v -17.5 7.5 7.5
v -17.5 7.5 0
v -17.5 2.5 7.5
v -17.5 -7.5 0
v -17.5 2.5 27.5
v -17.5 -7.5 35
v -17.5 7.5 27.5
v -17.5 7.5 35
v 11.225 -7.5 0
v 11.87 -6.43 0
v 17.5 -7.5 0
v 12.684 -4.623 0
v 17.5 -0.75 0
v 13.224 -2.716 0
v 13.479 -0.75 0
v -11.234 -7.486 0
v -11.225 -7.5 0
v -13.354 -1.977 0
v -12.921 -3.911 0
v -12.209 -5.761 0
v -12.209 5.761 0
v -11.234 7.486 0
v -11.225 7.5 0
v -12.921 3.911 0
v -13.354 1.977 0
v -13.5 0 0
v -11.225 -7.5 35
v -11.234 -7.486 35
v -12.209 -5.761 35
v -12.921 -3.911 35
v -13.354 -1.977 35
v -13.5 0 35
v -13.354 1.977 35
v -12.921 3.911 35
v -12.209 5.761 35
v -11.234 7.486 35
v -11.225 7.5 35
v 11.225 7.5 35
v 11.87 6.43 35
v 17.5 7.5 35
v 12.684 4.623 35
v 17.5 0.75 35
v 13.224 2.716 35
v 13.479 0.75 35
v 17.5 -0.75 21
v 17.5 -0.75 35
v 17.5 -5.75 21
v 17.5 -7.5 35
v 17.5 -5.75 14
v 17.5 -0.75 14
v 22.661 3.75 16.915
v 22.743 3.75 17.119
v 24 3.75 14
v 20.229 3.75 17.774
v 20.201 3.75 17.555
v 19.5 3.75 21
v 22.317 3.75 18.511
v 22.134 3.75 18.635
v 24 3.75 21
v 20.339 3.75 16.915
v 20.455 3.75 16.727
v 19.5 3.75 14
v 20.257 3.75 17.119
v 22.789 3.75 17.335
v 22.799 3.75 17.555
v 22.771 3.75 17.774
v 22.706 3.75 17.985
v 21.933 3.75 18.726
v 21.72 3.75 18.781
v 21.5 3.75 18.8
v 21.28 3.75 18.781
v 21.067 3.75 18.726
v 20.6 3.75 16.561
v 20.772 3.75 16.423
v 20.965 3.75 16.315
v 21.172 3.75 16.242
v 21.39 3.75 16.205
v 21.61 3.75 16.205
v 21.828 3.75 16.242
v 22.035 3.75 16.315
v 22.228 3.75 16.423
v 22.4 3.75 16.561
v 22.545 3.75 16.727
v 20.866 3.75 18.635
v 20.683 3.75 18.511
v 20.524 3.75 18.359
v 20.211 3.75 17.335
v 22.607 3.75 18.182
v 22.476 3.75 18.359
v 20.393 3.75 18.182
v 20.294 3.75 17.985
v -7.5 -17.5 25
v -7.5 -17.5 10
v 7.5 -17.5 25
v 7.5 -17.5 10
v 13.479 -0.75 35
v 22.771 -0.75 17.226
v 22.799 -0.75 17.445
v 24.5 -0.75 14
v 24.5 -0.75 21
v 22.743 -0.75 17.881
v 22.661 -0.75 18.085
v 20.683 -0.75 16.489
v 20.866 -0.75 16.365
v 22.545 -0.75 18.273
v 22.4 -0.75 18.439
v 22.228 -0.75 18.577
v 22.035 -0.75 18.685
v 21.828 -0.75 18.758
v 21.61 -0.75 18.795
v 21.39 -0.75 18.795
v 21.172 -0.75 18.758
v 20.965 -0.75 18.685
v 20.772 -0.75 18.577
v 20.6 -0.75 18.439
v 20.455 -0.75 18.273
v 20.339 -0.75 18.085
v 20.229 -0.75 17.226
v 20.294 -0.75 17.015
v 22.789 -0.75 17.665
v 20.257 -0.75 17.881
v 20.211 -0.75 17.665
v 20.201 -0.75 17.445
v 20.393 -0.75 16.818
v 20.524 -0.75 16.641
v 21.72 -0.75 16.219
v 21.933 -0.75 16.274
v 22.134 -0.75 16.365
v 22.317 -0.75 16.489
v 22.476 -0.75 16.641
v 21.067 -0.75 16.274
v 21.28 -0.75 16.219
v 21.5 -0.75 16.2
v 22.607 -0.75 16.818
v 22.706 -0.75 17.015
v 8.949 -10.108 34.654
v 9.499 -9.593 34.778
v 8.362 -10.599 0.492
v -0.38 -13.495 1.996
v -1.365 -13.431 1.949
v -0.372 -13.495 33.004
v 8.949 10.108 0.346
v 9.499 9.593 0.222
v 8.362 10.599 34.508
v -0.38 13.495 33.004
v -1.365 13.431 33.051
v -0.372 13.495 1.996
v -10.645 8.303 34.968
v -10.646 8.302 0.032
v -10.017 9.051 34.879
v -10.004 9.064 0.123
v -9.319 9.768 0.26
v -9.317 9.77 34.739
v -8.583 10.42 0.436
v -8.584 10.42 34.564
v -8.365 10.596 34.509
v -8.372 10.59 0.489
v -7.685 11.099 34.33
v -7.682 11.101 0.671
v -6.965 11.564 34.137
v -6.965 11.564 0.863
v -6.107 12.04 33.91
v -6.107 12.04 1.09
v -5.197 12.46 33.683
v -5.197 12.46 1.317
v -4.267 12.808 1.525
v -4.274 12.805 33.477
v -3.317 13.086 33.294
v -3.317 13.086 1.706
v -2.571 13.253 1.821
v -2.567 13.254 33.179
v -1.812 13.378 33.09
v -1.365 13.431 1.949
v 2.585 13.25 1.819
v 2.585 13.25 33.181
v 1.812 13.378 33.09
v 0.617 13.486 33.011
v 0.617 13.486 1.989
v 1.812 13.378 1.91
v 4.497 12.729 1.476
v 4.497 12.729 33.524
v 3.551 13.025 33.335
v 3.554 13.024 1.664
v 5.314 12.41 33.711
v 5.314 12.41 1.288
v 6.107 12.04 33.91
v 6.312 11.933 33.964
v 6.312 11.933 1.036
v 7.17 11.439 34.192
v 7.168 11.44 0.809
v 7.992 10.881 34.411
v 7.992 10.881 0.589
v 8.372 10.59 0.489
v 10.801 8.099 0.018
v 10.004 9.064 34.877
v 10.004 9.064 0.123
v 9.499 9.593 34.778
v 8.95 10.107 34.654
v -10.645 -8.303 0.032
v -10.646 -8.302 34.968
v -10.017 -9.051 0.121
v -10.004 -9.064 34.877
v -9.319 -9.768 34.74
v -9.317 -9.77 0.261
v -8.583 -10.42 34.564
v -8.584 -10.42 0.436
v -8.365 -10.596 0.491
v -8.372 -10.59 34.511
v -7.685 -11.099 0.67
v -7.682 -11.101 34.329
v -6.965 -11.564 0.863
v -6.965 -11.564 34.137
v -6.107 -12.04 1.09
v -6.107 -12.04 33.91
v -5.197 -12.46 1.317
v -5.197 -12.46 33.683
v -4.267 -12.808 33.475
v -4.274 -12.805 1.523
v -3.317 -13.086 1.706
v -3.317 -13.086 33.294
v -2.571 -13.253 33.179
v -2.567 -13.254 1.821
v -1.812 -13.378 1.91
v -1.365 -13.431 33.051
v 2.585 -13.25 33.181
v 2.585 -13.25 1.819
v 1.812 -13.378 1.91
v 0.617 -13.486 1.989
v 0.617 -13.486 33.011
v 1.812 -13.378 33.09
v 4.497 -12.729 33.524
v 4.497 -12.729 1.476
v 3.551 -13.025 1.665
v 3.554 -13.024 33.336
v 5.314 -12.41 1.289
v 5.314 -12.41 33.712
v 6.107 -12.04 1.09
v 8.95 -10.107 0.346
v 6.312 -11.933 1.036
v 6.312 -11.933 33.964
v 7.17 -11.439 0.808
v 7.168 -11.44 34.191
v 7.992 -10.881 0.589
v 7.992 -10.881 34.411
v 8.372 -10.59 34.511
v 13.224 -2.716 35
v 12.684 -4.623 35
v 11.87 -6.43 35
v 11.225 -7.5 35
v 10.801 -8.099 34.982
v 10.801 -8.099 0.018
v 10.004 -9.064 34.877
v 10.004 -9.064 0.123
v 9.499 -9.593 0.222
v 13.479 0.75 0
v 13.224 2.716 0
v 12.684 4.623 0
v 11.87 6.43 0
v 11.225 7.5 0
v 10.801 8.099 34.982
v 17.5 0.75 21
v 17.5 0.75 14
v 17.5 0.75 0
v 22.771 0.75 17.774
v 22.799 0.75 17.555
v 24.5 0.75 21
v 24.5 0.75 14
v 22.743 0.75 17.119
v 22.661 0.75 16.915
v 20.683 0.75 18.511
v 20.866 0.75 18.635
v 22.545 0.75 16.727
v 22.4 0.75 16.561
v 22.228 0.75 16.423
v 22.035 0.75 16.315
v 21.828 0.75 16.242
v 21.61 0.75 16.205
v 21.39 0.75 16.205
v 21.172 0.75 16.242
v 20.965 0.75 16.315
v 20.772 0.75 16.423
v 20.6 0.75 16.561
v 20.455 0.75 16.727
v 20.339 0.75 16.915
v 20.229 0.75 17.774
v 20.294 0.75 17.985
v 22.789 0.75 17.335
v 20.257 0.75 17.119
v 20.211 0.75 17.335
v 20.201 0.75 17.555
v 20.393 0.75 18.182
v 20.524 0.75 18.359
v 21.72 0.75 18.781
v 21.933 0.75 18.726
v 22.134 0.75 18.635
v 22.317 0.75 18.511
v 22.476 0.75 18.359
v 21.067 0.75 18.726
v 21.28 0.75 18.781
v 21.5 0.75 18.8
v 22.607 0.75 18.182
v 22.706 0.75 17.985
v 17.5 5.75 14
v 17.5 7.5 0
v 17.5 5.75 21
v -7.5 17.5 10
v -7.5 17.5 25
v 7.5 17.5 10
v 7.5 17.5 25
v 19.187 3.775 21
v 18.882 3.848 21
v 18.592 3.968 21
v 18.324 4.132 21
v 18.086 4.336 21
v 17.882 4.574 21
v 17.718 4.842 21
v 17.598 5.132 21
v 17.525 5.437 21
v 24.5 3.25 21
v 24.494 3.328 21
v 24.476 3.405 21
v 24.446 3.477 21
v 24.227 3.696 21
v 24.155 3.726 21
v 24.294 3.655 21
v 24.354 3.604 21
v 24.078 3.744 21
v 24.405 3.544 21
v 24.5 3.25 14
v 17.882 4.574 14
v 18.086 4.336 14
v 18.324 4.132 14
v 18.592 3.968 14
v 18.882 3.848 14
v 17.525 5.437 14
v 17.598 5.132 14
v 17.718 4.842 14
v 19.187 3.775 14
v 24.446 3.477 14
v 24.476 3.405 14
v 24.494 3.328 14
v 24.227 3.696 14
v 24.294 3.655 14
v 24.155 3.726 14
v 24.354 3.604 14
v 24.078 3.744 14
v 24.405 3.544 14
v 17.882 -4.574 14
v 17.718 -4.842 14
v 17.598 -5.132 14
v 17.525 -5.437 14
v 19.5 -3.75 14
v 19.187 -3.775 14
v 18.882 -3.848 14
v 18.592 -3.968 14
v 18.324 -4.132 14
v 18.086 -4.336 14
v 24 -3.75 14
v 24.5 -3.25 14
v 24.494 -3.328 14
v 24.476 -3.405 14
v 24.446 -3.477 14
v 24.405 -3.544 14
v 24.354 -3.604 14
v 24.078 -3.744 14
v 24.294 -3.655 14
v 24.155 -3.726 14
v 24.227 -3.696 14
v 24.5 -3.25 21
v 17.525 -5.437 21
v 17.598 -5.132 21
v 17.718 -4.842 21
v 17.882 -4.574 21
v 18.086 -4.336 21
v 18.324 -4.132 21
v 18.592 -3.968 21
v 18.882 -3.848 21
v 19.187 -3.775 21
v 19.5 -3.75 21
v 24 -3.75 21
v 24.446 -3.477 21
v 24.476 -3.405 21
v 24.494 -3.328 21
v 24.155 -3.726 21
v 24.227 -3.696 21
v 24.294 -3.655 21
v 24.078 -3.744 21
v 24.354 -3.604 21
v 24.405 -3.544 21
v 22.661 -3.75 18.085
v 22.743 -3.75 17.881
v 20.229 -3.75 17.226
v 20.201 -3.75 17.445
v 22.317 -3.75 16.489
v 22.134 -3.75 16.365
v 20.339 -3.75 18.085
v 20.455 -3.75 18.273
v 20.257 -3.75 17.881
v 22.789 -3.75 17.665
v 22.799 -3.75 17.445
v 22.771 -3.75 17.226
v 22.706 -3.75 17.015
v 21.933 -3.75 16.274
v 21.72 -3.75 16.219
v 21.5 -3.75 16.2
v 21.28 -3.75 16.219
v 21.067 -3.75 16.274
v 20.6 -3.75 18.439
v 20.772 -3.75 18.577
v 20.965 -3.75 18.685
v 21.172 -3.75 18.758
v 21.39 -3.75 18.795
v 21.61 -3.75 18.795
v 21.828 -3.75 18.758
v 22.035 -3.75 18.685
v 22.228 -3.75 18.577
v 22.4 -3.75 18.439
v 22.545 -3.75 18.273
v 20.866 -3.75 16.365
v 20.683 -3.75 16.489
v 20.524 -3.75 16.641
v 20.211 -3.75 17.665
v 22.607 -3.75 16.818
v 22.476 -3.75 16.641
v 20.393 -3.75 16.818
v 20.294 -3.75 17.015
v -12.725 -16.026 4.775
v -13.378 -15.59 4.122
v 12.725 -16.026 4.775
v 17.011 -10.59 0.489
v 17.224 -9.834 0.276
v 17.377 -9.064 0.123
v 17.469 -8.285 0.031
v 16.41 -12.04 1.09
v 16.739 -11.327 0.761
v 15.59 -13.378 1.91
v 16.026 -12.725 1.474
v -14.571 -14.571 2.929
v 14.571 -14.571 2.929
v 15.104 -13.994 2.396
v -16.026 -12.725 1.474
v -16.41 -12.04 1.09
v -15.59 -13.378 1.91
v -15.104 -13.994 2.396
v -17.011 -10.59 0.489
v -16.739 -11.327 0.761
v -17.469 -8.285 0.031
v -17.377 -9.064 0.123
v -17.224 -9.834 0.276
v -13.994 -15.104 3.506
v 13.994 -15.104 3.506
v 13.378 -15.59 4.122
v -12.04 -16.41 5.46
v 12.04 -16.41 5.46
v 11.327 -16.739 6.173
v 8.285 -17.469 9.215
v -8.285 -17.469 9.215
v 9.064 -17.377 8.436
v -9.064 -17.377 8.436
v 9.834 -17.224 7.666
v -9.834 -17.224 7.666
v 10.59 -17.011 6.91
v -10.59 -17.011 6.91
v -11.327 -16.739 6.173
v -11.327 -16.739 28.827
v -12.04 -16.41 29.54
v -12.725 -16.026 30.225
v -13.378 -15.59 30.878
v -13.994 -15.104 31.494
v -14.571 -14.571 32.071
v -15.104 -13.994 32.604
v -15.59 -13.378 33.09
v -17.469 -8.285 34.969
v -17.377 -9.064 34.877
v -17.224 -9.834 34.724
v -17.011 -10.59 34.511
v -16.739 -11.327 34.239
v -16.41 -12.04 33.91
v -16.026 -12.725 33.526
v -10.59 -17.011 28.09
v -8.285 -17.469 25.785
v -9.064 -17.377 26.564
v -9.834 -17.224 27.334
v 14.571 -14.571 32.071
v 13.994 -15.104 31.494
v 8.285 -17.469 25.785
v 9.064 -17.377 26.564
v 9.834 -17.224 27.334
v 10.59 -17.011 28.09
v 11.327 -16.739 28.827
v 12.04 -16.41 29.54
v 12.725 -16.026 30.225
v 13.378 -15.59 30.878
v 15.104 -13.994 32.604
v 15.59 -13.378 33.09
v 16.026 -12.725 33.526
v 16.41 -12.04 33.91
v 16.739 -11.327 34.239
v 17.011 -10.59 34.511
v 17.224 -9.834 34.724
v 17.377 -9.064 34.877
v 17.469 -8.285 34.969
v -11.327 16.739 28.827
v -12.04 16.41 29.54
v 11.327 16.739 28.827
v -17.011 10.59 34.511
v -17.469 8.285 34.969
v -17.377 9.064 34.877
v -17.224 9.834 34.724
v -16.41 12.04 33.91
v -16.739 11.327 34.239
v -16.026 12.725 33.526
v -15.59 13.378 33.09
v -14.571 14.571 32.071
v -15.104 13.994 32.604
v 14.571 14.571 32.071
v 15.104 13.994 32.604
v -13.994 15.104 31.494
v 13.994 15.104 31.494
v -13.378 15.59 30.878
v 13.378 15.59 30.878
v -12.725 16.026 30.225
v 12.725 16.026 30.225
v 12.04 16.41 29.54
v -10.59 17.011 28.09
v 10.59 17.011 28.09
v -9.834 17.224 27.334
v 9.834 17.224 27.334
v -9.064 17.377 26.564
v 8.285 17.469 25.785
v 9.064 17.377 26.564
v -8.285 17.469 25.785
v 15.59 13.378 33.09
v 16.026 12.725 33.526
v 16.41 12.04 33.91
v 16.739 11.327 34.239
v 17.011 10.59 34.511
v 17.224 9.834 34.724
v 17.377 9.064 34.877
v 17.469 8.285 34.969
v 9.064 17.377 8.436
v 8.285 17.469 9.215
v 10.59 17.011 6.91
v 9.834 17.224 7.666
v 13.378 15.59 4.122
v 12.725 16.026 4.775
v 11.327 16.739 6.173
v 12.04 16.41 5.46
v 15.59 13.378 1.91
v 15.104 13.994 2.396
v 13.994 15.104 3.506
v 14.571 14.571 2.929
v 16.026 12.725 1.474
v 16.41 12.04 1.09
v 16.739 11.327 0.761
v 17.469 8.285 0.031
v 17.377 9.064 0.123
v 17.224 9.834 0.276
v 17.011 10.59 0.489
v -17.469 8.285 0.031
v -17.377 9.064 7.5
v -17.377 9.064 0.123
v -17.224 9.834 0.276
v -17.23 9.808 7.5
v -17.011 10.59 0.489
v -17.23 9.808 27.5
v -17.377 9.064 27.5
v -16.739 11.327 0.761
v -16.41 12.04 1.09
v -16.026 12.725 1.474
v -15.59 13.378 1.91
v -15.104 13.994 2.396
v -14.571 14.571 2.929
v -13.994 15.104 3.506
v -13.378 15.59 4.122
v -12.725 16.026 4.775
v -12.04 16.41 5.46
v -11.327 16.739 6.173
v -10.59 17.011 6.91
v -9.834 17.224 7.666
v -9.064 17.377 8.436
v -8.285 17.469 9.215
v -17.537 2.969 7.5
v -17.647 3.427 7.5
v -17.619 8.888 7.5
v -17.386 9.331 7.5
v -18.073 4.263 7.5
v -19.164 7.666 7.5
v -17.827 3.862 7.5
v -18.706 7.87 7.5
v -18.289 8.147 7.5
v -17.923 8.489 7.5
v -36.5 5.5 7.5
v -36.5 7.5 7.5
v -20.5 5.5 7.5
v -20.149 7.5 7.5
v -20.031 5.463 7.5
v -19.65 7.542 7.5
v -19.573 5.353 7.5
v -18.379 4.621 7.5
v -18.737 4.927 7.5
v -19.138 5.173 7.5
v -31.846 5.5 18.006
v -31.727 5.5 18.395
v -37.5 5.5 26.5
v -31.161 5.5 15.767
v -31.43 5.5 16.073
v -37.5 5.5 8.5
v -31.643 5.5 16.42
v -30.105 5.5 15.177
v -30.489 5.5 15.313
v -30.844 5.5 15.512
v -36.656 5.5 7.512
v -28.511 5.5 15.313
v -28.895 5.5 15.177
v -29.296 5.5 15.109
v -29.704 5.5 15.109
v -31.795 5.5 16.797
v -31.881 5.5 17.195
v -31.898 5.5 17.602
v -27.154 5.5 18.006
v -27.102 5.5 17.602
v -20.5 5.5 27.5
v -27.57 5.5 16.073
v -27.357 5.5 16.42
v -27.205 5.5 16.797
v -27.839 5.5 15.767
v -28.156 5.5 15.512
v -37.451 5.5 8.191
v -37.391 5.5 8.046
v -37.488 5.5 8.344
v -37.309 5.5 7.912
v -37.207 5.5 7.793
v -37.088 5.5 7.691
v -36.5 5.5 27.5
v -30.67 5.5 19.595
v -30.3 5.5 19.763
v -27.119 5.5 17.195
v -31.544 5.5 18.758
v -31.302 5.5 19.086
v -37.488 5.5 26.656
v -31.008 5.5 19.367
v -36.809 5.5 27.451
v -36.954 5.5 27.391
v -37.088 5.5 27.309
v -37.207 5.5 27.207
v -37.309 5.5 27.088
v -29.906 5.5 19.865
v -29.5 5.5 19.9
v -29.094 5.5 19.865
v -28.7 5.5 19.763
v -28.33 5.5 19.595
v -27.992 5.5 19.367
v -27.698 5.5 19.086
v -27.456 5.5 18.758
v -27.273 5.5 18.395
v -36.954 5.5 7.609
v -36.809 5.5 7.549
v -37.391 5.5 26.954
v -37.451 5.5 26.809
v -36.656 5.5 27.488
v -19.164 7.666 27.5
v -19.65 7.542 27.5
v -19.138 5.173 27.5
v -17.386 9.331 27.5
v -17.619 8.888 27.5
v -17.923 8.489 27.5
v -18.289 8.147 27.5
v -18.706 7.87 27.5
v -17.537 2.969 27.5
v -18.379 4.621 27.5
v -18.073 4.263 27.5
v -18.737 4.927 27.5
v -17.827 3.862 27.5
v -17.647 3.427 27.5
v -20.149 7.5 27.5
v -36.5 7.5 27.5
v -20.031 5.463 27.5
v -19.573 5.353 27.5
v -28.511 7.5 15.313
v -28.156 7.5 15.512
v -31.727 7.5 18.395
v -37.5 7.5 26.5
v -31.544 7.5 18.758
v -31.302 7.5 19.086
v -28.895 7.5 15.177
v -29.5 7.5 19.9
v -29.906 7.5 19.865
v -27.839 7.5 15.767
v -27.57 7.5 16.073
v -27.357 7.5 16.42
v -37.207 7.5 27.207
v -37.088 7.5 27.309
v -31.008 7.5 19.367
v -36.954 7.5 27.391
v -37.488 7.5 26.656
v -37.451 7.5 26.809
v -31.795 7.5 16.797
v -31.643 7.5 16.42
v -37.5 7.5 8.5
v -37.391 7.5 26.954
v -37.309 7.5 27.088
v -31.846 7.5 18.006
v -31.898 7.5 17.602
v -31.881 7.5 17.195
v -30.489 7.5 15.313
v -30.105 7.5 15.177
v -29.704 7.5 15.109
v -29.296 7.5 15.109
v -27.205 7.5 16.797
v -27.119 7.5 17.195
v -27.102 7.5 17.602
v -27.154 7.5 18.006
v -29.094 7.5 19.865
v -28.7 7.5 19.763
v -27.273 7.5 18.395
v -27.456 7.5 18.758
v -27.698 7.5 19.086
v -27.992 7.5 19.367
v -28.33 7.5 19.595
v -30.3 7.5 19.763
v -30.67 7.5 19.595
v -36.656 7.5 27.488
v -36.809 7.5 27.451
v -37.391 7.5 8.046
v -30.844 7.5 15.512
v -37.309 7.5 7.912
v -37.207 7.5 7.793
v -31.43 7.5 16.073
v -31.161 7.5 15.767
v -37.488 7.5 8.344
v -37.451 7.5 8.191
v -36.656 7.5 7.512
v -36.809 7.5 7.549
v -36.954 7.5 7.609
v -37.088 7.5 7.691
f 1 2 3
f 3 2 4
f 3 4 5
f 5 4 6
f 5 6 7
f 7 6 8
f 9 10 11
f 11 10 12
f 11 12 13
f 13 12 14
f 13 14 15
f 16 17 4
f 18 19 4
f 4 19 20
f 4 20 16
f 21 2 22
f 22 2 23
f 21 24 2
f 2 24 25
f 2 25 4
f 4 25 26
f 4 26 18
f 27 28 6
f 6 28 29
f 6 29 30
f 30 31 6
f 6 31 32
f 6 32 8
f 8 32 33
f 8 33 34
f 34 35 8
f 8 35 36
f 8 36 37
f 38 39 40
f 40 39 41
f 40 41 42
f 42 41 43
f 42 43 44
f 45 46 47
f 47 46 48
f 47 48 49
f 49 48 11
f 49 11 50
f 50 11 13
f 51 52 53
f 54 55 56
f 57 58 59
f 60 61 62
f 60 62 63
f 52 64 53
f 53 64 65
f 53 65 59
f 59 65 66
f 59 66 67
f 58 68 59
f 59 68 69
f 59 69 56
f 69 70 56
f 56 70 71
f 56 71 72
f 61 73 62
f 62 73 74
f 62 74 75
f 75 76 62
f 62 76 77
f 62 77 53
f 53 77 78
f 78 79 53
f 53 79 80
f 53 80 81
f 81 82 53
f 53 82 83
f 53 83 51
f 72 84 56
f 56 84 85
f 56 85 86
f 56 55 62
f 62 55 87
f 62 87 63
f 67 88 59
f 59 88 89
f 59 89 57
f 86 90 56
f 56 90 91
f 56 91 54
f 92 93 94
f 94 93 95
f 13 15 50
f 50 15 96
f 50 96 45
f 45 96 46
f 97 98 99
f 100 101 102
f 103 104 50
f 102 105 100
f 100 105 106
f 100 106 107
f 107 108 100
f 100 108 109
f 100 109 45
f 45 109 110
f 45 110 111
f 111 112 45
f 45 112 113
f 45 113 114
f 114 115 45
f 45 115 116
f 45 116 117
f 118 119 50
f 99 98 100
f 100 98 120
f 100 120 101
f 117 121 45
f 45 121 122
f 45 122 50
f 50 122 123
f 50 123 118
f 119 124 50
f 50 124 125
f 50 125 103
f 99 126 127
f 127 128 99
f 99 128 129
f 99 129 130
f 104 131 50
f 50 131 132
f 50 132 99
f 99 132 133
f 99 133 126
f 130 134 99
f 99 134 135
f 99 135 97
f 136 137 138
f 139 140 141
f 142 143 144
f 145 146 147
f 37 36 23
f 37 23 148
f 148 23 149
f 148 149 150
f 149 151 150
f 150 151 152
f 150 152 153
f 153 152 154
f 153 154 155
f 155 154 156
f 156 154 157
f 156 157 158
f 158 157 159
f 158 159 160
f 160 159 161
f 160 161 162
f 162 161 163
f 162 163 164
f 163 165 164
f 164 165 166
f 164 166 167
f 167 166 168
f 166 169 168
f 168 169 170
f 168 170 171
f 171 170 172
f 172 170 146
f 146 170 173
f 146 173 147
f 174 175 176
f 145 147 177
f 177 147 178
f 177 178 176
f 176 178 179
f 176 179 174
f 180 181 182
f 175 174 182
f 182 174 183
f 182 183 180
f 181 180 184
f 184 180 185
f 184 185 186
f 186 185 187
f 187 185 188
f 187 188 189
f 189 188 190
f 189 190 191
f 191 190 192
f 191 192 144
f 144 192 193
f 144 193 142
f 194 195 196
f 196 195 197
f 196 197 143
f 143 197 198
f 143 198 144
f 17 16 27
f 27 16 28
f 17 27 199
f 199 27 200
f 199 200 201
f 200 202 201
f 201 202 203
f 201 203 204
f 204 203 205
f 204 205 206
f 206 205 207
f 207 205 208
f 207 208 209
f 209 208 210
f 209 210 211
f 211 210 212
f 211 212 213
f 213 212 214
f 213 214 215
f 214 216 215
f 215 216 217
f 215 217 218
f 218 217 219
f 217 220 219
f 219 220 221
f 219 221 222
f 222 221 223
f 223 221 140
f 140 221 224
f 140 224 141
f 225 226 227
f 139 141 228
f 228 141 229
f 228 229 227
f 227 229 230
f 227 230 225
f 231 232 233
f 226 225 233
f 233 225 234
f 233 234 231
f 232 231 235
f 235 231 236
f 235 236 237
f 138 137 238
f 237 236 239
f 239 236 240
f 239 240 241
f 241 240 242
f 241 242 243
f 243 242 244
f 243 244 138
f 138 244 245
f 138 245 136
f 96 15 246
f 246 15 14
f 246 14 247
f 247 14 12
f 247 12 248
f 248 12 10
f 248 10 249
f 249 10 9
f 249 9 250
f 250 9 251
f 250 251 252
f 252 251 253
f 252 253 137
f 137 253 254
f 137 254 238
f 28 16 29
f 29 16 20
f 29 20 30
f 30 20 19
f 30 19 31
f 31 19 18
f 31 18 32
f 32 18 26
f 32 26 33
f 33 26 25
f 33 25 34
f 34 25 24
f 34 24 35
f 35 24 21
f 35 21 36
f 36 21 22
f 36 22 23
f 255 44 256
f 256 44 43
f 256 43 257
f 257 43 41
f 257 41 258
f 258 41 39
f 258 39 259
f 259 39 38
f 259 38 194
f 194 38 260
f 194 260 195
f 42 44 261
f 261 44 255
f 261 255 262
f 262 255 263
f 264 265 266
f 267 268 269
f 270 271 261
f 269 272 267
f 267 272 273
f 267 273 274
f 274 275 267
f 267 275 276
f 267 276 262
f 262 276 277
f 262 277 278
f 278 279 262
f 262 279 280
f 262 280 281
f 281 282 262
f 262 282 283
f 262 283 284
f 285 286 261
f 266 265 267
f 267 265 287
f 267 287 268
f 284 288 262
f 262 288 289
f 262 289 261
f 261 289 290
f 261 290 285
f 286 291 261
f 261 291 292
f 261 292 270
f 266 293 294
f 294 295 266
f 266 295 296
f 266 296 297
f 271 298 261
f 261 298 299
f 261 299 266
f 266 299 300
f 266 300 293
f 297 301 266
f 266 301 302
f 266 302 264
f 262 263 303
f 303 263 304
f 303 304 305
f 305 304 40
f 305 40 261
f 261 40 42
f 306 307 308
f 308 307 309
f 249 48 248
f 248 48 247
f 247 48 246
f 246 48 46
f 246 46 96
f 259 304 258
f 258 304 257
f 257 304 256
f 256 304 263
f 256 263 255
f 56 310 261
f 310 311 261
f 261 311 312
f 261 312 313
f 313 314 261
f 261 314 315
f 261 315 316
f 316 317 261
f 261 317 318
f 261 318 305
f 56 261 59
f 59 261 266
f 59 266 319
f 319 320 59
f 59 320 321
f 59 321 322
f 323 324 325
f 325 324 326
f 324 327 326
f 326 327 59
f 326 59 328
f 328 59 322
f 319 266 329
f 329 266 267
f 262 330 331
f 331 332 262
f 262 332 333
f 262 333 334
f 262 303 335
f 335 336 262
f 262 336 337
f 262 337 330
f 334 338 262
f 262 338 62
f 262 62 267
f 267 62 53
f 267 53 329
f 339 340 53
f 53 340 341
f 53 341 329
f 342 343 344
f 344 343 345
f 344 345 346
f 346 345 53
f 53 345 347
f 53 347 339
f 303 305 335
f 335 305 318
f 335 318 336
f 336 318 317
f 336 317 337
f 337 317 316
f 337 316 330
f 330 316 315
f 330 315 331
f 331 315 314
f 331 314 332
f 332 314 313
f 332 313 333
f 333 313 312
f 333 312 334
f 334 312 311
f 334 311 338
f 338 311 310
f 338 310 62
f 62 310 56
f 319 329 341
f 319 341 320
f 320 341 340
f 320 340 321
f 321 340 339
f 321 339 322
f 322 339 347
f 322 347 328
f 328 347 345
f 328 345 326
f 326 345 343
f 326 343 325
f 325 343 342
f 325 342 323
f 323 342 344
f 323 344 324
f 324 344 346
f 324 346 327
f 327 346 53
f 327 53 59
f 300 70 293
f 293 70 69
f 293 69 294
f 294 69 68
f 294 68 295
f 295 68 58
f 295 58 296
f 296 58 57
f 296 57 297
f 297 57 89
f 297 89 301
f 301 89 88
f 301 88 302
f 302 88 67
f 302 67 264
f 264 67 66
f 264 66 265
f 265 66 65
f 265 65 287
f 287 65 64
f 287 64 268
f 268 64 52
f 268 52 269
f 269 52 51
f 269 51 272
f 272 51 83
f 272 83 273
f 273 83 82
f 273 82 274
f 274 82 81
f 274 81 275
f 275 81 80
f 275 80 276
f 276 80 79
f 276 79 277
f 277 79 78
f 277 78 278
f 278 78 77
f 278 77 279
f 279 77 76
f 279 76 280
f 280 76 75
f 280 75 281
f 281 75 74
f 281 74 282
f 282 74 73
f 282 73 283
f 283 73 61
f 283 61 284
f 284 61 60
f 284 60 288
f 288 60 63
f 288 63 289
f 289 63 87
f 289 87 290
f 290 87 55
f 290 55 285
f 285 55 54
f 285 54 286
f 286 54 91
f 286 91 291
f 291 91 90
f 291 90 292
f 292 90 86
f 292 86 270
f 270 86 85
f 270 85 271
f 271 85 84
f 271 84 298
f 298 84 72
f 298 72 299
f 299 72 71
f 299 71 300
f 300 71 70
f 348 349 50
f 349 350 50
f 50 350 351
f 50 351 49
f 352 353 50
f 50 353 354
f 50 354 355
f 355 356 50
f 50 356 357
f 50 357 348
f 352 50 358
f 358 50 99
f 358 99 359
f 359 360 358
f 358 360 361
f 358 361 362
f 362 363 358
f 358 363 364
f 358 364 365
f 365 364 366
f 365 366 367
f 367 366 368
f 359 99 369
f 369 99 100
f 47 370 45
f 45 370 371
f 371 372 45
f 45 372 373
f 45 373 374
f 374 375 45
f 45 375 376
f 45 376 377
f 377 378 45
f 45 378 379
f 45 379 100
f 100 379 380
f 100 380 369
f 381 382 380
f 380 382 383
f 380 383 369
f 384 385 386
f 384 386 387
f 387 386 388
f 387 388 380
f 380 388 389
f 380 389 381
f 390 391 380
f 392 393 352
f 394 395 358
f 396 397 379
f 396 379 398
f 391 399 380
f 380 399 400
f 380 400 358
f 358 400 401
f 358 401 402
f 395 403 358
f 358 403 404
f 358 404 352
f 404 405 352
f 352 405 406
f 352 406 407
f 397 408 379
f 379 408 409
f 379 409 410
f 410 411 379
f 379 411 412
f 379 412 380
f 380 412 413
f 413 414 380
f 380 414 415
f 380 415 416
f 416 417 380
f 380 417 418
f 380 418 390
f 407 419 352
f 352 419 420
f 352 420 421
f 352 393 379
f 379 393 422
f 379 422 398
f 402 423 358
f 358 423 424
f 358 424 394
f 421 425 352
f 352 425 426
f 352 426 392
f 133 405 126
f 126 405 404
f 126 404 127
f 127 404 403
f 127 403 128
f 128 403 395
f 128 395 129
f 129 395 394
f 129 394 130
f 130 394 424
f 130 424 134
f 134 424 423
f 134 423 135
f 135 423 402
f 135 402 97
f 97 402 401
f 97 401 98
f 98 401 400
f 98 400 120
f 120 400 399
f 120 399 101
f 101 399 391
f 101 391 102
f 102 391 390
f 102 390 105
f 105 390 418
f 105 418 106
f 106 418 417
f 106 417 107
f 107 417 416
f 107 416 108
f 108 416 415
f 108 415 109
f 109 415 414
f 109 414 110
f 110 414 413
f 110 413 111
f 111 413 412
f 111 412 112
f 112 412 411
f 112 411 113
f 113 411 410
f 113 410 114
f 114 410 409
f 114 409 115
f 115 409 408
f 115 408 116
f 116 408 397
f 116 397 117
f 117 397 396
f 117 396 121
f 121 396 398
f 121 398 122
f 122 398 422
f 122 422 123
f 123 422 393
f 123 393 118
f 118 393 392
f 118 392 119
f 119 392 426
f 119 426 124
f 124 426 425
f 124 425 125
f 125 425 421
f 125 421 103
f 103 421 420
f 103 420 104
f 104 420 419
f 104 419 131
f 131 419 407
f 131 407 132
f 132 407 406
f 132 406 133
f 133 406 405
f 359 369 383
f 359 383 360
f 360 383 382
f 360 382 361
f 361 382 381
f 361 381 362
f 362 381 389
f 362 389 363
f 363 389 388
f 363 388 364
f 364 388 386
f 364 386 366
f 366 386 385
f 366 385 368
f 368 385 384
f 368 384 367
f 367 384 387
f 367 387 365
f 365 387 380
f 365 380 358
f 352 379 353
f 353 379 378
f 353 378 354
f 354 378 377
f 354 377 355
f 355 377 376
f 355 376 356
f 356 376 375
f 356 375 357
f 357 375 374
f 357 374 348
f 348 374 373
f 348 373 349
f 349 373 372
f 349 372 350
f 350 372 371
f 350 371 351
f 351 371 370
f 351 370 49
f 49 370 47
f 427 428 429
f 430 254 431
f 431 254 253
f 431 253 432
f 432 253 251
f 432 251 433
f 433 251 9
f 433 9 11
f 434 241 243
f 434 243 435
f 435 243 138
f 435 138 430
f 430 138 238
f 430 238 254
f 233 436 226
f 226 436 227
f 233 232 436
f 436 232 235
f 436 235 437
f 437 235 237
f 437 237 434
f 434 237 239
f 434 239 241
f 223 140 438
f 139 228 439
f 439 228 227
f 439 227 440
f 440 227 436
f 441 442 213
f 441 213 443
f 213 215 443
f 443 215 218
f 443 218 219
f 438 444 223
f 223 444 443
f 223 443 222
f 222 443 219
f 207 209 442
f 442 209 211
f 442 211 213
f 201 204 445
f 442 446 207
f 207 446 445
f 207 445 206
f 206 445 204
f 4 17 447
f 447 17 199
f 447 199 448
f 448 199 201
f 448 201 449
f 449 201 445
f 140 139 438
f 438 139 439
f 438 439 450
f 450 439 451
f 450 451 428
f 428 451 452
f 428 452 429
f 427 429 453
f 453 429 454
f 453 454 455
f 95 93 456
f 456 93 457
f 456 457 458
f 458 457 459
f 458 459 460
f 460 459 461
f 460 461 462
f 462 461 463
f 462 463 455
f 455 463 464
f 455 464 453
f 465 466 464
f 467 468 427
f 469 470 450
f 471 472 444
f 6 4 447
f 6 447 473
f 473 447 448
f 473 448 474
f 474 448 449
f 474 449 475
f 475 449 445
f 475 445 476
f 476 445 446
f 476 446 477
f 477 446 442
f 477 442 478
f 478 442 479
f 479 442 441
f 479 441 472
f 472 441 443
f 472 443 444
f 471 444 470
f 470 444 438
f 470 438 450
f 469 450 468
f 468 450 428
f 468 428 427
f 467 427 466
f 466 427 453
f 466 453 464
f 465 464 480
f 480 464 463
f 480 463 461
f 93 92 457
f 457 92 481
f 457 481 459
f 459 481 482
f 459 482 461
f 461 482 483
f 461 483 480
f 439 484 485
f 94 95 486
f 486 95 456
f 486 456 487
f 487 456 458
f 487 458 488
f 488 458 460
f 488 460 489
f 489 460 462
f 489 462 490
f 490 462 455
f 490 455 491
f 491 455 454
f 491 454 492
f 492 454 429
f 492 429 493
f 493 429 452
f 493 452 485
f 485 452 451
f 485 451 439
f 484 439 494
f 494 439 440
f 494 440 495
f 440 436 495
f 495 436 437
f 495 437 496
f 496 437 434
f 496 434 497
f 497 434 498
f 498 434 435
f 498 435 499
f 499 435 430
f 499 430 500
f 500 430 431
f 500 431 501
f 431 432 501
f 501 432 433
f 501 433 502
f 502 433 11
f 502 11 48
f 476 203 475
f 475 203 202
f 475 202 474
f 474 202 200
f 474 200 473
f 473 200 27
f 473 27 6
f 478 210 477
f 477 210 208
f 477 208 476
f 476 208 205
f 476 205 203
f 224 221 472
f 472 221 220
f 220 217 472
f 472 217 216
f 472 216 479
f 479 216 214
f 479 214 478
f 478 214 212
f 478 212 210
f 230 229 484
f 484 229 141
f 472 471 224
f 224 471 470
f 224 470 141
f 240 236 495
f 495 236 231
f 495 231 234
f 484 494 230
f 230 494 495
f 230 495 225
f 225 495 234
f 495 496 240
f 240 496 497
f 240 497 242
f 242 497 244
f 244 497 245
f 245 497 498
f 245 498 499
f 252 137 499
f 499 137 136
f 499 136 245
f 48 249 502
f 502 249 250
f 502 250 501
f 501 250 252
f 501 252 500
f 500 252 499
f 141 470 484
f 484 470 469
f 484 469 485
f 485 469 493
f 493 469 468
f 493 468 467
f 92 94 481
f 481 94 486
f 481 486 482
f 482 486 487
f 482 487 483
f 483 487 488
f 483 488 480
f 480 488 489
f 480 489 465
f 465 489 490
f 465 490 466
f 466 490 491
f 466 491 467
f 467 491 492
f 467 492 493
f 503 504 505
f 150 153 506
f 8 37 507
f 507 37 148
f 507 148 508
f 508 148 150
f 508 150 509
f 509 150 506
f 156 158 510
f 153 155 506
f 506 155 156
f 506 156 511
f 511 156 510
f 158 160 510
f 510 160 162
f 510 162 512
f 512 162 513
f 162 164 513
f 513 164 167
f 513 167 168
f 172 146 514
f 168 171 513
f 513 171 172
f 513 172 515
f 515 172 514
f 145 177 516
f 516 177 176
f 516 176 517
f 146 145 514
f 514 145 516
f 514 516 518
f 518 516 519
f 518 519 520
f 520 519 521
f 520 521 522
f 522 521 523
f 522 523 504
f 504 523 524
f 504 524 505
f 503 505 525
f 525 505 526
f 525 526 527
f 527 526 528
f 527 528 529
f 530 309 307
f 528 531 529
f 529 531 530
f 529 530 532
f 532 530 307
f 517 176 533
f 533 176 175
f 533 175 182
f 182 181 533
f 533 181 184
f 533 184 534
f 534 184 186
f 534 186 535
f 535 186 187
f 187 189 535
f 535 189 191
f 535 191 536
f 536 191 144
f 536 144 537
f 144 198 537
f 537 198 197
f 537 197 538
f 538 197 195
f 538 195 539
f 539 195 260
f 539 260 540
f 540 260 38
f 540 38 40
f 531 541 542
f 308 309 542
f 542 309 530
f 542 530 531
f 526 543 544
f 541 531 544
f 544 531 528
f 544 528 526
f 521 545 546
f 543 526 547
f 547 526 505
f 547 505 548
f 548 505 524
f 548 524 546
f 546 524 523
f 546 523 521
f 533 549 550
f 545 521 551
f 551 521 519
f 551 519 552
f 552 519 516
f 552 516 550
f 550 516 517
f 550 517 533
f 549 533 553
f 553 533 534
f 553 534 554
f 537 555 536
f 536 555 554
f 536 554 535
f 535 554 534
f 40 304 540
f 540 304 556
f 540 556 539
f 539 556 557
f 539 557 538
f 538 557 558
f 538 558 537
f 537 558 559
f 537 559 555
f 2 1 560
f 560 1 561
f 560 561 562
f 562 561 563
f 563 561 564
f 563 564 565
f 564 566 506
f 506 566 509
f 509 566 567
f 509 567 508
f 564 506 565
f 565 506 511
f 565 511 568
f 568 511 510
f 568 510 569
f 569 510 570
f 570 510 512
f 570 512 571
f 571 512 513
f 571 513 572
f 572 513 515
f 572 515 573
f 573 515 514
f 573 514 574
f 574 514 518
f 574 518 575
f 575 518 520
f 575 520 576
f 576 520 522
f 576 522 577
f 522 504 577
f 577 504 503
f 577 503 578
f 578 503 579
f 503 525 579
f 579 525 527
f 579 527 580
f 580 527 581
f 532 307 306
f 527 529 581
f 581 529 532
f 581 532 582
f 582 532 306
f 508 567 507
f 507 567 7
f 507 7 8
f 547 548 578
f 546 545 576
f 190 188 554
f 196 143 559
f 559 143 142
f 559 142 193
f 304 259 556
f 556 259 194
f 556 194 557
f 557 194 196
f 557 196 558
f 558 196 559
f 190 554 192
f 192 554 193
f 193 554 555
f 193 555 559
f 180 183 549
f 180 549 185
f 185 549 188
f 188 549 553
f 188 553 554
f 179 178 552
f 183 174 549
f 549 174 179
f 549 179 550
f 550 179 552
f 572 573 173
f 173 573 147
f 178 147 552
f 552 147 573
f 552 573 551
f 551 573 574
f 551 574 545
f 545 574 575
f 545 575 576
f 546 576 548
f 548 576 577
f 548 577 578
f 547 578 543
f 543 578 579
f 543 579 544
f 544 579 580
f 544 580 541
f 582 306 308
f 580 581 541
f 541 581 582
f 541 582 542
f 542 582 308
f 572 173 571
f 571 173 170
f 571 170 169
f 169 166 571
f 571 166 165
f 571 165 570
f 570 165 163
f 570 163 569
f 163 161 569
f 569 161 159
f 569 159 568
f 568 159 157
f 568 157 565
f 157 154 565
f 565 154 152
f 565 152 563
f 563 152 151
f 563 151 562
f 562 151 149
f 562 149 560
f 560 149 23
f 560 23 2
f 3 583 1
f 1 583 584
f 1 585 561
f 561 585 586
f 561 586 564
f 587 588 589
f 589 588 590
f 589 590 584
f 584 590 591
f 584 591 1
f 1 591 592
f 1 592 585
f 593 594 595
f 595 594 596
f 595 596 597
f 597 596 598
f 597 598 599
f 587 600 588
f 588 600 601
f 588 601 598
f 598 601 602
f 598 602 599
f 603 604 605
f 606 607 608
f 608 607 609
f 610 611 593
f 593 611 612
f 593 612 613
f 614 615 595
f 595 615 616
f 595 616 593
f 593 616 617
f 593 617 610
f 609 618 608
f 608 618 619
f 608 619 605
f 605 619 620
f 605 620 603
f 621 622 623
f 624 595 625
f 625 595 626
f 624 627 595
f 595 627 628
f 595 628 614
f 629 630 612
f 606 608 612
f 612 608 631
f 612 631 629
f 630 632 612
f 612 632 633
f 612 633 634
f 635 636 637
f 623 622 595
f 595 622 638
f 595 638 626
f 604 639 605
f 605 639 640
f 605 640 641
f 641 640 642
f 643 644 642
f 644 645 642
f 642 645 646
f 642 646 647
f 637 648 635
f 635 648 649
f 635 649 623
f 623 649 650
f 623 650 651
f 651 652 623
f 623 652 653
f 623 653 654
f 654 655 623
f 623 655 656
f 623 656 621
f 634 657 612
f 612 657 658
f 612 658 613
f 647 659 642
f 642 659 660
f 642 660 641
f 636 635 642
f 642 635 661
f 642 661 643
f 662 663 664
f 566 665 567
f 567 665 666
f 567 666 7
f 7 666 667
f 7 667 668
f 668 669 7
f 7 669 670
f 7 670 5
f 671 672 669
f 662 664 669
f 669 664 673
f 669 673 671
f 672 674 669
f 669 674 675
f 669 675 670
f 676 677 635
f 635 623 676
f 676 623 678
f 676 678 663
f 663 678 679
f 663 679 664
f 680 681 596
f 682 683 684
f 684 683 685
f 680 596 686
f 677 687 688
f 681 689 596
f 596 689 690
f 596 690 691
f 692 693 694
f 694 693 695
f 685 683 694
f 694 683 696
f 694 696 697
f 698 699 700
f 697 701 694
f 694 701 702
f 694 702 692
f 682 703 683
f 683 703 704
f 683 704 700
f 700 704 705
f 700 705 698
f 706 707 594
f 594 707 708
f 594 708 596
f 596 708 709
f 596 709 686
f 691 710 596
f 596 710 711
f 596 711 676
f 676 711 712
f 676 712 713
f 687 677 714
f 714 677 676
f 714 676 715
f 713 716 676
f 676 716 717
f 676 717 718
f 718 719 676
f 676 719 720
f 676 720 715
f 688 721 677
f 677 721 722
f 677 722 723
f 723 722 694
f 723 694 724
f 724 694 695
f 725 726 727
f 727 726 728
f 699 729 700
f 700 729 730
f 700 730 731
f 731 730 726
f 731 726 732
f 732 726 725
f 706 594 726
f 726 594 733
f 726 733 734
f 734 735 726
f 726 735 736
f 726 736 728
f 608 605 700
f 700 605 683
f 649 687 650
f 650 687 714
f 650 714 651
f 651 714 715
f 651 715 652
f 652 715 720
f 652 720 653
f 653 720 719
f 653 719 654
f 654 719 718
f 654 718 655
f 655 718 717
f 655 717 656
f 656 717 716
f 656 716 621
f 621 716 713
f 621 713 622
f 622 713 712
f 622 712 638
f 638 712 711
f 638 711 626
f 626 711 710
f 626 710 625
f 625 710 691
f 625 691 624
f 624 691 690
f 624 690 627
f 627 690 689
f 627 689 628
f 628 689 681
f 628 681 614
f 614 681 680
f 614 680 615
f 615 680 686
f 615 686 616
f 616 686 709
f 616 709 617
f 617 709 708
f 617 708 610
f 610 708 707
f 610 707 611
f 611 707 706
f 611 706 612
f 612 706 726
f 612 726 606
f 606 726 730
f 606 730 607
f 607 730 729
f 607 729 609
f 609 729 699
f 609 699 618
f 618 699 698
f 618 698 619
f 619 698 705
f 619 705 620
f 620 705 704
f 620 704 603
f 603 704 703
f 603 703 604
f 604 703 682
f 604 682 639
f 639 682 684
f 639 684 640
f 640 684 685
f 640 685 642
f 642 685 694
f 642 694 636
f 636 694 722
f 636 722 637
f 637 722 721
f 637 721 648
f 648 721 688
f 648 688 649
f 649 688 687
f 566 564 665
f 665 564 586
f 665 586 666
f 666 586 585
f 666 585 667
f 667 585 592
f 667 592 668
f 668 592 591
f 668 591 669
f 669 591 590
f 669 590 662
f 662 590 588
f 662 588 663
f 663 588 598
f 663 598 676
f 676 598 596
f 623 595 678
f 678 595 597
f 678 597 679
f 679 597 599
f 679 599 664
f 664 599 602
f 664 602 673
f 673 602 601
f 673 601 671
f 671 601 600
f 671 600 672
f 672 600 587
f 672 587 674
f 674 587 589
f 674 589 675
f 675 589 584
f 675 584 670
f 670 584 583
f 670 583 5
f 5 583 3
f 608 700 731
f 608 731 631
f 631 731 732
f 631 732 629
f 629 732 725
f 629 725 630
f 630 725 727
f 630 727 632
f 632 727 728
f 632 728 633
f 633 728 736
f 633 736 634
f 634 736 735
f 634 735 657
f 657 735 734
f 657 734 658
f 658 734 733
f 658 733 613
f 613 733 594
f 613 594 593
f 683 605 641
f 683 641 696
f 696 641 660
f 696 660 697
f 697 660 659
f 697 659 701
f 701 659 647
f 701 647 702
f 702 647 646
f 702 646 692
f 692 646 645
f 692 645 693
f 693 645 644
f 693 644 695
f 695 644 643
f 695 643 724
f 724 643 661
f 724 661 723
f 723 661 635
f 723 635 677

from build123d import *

# Parameters (mm, degrees)
BOSS_EXTRUDE1_DEPTH  = 35
SKETCH3_W            = 7
SKETCH3_H            = 7
BOSS_EXTRUDE2_DEPTH  = 3
FILLET1_R            = 2
FILLET2_R            = 0.5
M2_CLEARANCE_HOLE1_D = 2.6
FILLET3_R            = 0.5
FILLET4_R            = 2
FILLET5_R            = 10
SKETCH8_W            = 20
SKETCH8_H            = 2
BOSS_EXTRUDE4_DEPTH  = 20
M4_CLEARANCE_HOLE1_D = 4.8
FILLET6_R            = 3
FILLET7_R            = 1


with BuildPart() as part:
    # Sketch1 → Boss-Extrude1 (new body)
    with BuildSketch(Plane.XY):
        with BuildLine():
            Line((13.479150567, 0.75), (17.5, 0.75))
            Line((17.5, 0.75), (17.5, 17.5))
            Line((17.5, 17.5), (-17.5, 17.5))
            Line((-17.5, 17.5), (-17.5, -17.5))
            Line((-17.5, -17.5), (17.5, -17.5))
            Line((17.5, -17.5), (17.5, -0.75))
            Line((17.5, -0.75), (13.479150567, -0.75))
            ThreePointArc((13.479150567, -0.75), (-13.5, 0), (13.479150567, 0.75))
        make_face()
    extrude(amount=BOSS_EXTRUDE1_DEPTH)

    # Sketch3 → Boss-Extrude2 (add)
    with BuildSketch(Plane.XZ.offset(-0.75)):
        with Locations((21, 17.5)):
            Rectangle(SKETCH3_W, SKETCH3_H)
    boss_extrude2 = extrude(amount=-BOSS_EXTRUDE2_DEPTH)

    # Fillet1
    fillet1_edges = [part.edges().sort_by_distance(p)[0] for p in [
        (17.5, 3.75, 17.5),
    ]]
    fillet(fillet1_edges, radius=FILLET1_R)

    # Fillet2
    fillet2_edges = [part.edges().sort_by_distance(p)[0] for p in [
        (24.5, 3.75, 17.5),
    ]]
    fillet(fillet2_edges, radius=FILLET2_R)

    # M2 Clearance Hole1 (through all)
    with Locations(Plane(origin=(0, 3.75, 0), x_dir=(1, 0, 0), z_dir=(0, 1, 0))):
        with Locations((21.5, -17.5)):
            m2_clearance_hole1 = Hole(M2_CLEARANCE_HOLE1_D / 2)

    # Mirror3: Boss-Extrude2 across plane
    add(boss_extrude2.mirror(Plane.ZX))

    # Mirror5: M2 Clearance Hole1 across plane
    add(m2_clearance_hole1.mirror(Plane.ZX), mode=Mode.SUBTRACT)

    # Fillet3
    fillet3_edges = [part.edges().sort_by_distance(p)[0] for p in [
        (24.5, -3.75, 17.5),
    ]]
    fillet(fillet3_edges, radius=FILLET3_R)

    # Fillet4
    fillet4_edges = [part.edges().sort_by_distance(p)[0] for p in [
        (17.5, -3.75, 17.5),
    ]]
    fillet(fillet4_edges, radius=FILLET4_R)

    # Fillet5
    # the kernel refuses this fillet: 10 mm, written as the material it takes off along each edge
    with BuildSketch(Plane(origin=(-42.5, -17.5, 0), x_dir=(0, 0, 1), z_dir=(1, 0, 0)), Plane(origin=(17.5, -17.5, -25), x_dir=(-1, 0, 0), z_dir=(0, 0, 1)), Plane(origin=(42.5, 17.5, 35), x_dir=(0, -1, 0), z_dir=(-1, 0, 0)), Plane(origin=(42.5, 17.5, 0), x_dir=(0, 0, 1), z_dir=(-1, 0, 0)), Plane(origin=(-42.5, -17.5, 35), x_dir=(0, 1, 0), z_dir=(1, 0, 0))) as fillet5_piece_1:
        with BuildLine():
            CenterArc((FILLET5_R, -FILLET5_R), FILLET5_R, 90, 90)
            Line((0, -FILLET5_R), (0, 0))
            Line((0, 0), (FILLET5_R, 0))
        make_face()
    extrude(amount=85, mode=Mode.SUBTRACT)
    with BuildSketch(Plane(origin=(-17.5, 17.5, -25), x_dir=(0, -1, 0), z_dir=(0, 0, 1)), Plane(origin=(17.5, 17.5, -25), x_dir=(-1, 0, 0), z_dir=(0, 0, 1)), Plane(origin=(-17.5, -17.5, -25), x_dir=(1, 0, 0), z_dir=(0, 0, 1))) as fillet5_piece_2:
        with BuildLine():
            CenterArc((FILLET5_R, FILLET5_R), FILLET5_R, 180, 90)
            Line((0, FILLET5_R), (0, 0))
            Line((0, 0), (FILLET5_R, 0))
        make_face()
    extrude(amount=85, mode=Mode.SUBTRACT)

    # Sketch8 → Boss-Extrude4 (add)
    with BuildSketch(Plane.ZY.offset(17.5)):
        with Locations((17.5, 6.5)):
            Rectangle(SKETCH8_W, SKETCH8_H)
    extrude(amount=BOSS_EXTRUDE4_DEPTH)

    # M4 Clearance Hole1 (through all)
    with Locations(Plane(origin=(0, 7.5, 0), x_dir=(1, 0, 0), z_dir=(0, 1, 0))):
        with Locations((-29.5, -17.5)):
            Hole(M4_CLEARANCE_HOLE1_D / 2)

    # Fillet6
    fillet6_edges = [part.edges().sort_by_distance(p)[0] for p in [
        (-17.5, 5.5, 17.5),
        (-17.5, 7.5, 17.5),
    ]]
    fillet(fillet6_edges, radius=FILLET6_R)

    # Fillet7
    fillet7_edges = [part.edges().sort_by_distance(p)[0] for p in [
        (-37.5, 6.5, 7.5),
        (-37.5, 6.5, 27.5),
    ]]
    fillet(fillet7_edges, radius=FILLET7_R)


solid = part.part
